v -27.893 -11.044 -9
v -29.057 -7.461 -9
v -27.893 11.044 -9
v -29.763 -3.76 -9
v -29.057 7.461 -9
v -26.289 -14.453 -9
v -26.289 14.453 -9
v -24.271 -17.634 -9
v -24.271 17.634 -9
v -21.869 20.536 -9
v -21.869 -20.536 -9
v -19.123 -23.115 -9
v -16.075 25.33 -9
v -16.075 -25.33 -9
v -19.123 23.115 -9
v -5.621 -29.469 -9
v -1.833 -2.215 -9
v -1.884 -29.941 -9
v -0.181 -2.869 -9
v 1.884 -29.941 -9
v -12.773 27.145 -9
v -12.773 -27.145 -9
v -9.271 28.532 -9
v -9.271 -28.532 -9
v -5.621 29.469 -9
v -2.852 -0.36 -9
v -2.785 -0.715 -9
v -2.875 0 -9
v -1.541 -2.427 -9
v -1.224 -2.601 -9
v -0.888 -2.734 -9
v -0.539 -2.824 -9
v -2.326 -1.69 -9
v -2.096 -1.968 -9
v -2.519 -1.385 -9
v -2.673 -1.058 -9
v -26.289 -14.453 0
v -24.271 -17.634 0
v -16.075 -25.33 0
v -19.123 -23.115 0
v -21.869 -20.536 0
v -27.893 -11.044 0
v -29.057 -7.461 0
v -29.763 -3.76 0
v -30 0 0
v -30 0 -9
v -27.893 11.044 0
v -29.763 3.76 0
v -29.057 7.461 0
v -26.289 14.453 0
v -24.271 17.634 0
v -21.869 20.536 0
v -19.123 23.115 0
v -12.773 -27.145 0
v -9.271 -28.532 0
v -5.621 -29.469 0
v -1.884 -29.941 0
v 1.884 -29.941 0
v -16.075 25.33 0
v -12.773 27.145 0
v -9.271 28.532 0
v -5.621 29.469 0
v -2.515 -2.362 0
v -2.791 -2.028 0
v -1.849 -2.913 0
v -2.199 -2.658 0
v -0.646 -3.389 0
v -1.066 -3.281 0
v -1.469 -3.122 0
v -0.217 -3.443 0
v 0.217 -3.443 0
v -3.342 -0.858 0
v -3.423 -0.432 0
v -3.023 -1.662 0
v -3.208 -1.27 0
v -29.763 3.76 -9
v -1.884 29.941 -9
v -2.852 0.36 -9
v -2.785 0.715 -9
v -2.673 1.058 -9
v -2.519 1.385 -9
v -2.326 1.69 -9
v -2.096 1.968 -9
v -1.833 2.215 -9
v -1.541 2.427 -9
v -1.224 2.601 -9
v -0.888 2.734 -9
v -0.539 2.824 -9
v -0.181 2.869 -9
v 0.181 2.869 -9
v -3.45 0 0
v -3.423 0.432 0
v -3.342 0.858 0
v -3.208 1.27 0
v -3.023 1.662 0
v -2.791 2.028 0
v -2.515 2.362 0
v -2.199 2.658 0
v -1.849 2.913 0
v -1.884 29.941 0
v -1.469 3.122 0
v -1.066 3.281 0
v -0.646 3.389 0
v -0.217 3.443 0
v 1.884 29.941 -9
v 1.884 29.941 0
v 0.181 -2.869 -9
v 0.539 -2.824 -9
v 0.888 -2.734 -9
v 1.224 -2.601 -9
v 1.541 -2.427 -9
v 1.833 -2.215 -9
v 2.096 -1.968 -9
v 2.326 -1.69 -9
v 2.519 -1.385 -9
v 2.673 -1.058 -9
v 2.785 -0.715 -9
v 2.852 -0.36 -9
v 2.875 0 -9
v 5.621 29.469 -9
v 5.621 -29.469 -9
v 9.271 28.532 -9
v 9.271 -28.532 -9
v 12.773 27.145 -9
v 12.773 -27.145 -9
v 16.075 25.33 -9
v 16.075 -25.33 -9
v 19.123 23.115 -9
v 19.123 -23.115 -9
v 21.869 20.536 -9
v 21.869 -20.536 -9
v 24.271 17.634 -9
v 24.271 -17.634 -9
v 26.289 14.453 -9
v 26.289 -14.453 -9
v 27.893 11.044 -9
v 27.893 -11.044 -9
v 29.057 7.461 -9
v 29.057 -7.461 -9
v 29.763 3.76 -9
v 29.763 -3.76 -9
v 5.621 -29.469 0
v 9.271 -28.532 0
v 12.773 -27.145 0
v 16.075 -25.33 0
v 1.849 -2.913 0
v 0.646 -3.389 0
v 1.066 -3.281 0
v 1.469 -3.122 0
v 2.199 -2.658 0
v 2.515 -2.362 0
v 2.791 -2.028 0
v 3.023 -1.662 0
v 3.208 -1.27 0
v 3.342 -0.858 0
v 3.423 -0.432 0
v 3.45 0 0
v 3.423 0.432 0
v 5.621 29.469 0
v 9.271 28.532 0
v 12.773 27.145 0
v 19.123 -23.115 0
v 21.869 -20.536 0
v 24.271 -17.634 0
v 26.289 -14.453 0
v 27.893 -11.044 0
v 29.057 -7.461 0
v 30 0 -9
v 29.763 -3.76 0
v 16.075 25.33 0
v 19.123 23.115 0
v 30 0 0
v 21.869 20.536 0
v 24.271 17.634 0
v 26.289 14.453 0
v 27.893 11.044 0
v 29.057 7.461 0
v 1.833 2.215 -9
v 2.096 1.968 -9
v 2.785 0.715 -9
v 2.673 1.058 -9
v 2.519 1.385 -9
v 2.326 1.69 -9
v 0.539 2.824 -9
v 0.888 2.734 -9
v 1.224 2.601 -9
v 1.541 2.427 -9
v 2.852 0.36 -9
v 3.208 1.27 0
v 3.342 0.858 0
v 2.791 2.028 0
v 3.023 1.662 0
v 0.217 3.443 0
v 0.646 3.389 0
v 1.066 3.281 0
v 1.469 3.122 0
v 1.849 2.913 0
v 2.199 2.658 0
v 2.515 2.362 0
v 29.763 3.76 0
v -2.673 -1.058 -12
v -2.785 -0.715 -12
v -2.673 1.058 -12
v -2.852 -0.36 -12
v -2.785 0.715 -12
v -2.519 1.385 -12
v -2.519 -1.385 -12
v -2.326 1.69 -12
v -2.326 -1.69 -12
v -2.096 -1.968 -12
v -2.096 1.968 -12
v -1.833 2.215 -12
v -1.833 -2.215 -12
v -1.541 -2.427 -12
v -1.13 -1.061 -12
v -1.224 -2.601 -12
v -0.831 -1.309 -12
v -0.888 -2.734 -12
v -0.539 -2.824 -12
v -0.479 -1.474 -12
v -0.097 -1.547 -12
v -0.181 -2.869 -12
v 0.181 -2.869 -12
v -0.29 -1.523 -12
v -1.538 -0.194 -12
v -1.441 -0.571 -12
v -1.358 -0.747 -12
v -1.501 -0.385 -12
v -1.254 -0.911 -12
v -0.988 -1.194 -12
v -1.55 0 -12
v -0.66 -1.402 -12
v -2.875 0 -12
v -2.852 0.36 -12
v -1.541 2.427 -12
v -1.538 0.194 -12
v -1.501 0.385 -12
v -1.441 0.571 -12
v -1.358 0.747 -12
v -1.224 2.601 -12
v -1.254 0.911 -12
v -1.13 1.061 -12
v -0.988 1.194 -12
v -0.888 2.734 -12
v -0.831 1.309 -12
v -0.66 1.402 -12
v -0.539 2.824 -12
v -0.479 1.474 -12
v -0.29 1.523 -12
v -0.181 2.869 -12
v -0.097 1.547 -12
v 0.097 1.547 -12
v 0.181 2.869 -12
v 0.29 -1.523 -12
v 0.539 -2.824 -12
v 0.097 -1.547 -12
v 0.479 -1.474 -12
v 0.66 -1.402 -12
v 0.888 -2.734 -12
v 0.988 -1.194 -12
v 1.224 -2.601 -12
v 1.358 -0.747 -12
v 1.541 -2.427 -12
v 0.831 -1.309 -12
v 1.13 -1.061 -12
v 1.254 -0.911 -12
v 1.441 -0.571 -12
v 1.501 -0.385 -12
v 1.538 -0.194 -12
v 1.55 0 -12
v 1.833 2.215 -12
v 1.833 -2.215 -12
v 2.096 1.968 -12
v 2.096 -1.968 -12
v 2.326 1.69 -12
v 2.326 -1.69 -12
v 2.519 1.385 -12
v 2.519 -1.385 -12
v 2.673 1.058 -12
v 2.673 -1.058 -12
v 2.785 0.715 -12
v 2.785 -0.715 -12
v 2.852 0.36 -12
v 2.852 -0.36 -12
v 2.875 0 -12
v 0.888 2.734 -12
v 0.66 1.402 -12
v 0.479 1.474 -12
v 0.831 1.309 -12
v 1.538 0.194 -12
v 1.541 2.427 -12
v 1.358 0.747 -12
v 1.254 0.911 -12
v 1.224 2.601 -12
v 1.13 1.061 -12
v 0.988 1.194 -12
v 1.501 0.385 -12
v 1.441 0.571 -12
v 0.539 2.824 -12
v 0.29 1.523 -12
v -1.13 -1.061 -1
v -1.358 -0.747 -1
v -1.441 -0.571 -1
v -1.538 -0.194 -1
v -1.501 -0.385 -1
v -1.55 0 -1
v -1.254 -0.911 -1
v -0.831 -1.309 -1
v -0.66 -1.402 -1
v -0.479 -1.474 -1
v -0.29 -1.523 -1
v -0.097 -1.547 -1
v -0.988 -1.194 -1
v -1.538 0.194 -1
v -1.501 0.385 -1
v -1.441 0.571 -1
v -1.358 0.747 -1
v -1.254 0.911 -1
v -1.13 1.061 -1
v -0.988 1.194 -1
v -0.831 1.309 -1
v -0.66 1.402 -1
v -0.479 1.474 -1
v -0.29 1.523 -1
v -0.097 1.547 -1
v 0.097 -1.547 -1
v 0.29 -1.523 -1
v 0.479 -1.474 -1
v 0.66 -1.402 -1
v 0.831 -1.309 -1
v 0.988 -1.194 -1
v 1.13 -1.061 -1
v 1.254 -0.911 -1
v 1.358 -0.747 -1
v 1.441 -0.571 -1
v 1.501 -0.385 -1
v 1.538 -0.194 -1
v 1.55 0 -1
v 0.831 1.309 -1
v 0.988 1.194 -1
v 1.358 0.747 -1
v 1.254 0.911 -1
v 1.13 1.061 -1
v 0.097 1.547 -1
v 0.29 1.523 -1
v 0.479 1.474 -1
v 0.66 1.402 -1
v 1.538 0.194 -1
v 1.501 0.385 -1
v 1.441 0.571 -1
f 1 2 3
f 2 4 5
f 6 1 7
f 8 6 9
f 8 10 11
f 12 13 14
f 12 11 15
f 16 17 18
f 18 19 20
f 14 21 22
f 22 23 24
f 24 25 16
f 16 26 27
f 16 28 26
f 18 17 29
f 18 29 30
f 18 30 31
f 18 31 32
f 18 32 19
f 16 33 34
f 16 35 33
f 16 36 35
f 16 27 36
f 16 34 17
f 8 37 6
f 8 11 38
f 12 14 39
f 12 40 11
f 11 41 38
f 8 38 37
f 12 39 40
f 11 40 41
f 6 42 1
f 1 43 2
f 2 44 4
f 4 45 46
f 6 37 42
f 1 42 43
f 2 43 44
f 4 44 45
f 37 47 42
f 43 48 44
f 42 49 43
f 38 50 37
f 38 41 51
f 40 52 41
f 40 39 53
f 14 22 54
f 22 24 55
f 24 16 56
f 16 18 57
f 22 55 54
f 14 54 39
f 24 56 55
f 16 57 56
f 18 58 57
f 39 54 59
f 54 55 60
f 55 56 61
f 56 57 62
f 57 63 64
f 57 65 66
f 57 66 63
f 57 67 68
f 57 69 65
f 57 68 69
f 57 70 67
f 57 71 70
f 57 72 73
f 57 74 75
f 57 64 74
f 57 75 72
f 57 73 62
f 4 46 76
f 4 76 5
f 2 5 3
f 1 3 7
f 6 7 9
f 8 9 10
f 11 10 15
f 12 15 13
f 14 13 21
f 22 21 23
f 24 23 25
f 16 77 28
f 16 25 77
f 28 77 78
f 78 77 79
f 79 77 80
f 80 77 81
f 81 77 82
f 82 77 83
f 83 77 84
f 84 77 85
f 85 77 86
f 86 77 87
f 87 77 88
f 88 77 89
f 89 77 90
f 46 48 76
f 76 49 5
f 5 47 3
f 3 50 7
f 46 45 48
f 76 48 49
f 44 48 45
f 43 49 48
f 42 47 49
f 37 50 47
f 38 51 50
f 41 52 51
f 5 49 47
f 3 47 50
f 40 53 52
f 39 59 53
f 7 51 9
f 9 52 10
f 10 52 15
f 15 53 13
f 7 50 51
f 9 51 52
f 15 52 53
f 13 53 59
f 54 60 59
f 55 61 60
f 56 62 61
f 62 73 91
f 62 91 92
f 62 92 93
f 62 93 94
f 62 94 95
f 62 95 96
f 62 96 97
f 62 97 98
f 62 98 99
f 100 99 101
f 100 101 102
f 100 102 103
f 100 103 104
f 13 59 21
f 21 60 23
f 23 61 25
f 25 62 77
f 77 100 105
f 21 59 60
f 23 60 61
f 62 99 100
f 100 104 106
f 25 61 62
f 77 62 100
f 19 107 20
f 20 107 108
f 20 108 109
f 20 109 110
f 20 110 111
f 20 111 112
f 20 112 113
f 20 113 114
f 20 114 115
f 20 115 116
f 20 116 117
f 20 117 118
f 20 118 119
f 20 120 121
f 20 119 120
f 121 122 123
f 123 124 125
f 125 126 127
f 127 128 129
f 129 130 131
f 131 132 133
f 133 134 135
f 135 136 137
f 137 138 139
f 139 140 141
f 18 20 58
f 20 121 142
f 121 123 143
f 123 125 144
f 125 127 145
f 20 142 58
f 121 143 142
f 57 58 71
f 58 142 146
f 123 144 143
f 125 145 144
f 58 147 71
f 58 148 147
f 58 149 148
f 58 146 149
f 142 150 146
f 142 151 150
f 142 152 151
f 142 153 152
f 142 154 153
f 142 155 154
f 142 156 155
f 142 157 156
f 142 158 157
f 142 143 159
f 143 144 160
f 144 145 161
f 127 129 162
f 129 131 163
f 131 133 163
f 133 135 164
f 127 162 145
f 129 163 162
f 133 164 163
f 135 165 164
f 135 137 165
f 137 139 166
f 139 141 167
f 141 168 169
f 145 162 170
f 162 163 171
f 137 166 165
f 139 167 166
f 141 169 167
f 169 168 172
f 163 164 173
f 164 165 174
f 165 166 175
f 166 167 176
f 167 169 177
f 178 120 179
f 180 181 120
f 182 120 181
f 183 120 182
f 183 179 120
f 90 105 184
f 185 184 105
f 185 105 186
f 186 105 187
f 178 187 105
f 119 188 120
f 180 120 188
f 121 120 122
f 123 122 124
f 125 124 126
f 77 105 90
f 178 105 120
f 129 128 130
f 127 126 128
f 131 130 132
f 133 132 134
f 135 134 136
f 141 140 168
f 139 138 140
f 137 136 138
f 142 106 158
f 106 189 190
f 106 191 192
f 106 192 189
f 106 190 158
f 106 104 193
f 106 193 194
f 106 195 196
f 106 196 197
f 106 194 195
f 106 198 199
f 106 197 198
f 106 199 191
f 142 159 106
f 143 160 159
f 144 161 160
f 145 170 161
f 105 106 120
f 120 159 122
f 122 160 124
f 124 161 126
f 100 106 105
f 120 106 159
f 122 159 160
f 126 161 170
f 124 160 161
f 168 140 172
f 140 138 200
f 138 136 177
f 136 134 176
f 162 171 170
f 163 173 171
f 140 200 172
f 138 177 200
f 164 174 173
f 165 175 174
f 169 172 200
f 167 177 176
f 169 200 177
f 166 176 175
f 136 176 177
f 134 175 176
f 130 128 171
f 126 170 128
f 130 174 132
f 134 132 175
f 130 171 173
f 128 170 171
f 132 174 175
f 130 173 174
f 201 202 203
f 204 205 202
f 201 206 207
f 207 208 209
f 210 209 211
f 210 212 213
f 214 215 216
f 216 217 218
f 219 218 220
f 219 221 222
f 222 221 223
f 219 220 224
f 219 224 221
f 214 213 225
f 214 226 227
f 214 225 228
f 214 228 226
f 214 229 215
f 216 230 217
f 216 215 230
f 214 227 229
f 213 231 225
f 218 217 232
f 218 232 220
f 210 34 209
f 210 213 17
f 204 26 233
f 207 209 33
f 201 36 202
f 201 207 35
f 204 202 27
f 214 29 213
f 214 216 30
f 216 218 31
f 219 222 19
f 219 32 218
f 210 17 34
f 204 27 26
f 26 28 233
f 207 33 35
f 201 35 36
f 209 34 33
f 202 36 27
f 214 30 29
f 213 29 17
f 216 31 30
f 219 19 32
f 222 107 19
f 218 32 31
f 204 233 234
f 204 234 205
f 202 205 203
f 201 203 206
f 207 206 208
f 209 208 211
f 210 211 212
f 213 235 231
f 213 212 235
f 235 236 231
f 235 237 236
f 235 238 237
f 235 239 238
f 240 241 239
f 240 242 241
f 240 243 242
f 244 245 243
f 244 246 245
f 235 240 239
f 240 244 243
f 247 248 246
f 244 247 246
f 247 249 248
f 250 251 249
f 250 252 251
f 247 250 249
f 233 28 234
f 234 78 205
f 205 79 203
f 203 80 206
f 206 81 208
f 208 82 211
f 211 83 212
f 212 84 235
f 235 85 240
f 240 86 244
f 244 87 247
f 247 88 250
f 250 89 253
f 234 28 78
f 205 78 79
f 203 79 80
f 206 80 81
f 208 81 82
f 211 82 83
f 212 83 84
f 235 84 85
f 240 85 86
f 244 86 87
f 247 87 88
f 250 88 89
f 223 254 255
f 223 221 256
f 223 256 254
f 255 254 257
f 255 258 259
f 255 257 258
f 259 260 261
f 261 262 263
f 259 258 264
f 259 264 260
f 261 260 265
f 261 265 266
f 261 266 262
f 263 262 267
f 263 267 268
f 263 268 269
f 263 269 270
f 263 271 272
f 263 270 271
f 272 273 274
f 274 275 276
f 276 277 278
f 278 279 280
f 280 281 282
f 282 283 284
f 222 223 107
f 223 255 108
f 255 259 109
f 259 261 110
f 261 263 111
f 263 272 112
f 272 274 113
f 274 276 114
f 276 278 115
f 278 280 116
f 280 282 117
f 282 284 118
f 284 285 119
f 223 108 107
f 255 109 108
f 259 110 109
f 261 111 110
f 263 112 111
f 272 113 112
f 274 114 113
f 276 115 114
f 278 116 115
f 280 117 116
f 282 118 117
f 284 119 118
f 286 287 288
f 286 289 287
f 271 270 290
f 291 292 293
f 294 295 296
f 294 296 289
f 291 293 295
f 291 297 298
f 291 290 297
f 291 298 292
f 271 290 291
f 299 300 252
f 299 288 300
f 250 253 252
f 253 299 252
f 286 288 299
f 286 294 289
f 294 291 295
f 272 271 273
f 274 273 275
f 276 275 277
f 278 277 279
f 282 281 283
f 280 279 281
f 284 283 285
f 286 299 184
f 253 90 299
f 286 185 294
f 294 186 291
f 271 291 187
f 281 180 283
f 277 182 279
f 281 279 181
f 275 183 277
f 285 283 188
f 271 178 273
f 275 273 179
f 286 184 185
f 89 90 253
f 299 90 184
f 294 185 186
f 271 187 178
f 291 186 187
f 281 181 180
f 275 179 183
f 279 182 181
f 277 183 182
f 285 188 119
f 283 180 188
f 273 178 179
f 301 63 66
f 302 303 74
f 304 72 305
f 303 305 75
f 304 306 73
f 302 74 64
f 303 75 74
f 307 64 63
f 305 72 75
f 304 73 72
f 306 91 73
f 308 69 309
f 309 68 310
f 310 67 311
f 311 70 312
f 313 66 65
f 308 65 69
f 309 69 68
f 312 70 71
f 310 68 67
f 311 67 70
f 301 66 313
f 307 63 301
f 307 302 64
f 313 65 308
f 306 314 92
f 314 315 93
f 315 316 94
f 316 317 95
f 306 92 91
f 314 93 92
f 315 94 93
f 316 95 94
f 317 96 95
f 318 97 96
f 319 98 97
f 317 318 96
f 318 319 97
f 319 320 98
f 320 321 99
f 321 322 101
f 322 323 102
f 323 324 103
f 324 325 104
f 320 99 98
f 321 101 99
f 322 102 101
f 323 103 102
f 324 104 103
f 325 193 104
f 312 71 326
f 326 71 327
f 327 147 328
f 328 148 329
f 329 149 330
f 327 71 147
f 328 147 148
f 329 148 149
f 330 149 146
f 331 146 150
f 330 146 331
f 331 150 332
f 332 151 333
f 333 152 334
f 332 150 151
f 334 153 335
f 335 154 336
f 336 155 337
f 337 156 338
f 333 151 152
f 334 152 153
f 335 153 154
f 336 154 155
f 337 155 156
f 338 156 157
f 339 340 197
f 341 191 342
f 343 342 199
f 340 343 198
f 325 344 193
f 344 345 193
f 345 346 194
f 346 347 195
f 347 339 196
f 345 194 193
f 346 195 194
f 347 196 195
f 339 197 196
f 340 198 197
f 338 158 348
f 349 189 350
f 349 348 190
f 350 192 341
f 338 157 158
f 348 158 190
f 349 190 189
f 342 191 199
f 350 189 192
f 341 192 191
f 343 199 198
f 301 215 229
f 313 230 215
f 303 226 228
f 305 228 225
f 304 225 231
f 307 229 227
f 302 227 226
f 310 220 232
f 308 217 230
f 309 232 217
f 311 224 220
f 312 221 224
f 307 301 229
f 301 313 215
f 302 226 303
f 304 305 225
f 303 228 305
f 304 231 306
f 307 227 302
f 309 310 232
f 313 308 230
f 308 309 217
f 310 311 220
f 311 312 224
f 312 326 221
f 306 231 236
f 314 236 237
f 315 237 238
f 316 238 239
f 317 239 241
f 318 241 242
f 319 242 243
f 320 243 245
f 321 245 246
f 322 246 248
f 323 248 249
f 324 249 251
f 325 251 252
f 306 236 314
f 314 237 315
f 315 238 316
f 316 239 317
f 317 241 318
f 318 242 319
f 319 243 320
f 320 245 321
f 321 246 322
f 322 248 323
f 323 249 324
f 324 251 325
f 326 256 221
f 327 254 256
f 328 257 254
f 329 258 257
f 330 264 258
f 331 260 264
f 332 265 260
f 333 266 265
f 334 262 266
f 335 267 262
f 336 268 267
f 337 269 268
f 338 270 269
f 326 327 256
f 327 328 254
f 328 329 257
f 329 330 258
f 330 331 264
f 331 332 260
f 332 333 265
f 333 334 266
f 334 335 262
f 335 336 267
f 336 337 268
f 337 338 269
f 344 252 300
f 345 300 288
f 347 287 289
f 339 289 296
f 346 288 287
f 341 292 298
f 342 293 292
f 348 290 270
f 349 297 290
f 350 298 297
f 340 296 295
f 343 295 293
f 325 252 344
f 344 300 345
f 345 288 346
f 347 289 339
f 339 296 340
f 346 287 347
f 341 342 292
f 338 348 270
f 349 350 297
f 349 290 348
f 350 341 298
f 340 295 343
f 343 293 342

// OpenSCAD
$fn = 50;

difference() {
	union() {
		translate(v = [0, 0, -9.0]) {
			cylinder(h = 9, r = 30.0);
		}
		#translate(v = [0, 0, -12.0]) {
			cylinder(h = 12, r = 2.875);
		}
	}
	union() {
		translate(v = [0, 0, 0]) {
			rotate(a = [0, 0, 0]) {
				difference() {
					union() {
						translate(v = [0, 0, -12.0]) {
							cylinder(h = 12, r = 1.25);
						}
						translate(v = [0, 0, -1.0]) {
							cylinder(h = 1.0, r1 = 1.55, r2 = 3.45);
						}
						translate(v = [0, 0, -12.0]) {
							cylinder(h = 12, r = 1.55);
						}
						translate(v = [0, 0, -12.0]) {
							cylinder(h = 12, r = 1.25);
						}
					}
					union();
				}
			}
		}
	}
}
